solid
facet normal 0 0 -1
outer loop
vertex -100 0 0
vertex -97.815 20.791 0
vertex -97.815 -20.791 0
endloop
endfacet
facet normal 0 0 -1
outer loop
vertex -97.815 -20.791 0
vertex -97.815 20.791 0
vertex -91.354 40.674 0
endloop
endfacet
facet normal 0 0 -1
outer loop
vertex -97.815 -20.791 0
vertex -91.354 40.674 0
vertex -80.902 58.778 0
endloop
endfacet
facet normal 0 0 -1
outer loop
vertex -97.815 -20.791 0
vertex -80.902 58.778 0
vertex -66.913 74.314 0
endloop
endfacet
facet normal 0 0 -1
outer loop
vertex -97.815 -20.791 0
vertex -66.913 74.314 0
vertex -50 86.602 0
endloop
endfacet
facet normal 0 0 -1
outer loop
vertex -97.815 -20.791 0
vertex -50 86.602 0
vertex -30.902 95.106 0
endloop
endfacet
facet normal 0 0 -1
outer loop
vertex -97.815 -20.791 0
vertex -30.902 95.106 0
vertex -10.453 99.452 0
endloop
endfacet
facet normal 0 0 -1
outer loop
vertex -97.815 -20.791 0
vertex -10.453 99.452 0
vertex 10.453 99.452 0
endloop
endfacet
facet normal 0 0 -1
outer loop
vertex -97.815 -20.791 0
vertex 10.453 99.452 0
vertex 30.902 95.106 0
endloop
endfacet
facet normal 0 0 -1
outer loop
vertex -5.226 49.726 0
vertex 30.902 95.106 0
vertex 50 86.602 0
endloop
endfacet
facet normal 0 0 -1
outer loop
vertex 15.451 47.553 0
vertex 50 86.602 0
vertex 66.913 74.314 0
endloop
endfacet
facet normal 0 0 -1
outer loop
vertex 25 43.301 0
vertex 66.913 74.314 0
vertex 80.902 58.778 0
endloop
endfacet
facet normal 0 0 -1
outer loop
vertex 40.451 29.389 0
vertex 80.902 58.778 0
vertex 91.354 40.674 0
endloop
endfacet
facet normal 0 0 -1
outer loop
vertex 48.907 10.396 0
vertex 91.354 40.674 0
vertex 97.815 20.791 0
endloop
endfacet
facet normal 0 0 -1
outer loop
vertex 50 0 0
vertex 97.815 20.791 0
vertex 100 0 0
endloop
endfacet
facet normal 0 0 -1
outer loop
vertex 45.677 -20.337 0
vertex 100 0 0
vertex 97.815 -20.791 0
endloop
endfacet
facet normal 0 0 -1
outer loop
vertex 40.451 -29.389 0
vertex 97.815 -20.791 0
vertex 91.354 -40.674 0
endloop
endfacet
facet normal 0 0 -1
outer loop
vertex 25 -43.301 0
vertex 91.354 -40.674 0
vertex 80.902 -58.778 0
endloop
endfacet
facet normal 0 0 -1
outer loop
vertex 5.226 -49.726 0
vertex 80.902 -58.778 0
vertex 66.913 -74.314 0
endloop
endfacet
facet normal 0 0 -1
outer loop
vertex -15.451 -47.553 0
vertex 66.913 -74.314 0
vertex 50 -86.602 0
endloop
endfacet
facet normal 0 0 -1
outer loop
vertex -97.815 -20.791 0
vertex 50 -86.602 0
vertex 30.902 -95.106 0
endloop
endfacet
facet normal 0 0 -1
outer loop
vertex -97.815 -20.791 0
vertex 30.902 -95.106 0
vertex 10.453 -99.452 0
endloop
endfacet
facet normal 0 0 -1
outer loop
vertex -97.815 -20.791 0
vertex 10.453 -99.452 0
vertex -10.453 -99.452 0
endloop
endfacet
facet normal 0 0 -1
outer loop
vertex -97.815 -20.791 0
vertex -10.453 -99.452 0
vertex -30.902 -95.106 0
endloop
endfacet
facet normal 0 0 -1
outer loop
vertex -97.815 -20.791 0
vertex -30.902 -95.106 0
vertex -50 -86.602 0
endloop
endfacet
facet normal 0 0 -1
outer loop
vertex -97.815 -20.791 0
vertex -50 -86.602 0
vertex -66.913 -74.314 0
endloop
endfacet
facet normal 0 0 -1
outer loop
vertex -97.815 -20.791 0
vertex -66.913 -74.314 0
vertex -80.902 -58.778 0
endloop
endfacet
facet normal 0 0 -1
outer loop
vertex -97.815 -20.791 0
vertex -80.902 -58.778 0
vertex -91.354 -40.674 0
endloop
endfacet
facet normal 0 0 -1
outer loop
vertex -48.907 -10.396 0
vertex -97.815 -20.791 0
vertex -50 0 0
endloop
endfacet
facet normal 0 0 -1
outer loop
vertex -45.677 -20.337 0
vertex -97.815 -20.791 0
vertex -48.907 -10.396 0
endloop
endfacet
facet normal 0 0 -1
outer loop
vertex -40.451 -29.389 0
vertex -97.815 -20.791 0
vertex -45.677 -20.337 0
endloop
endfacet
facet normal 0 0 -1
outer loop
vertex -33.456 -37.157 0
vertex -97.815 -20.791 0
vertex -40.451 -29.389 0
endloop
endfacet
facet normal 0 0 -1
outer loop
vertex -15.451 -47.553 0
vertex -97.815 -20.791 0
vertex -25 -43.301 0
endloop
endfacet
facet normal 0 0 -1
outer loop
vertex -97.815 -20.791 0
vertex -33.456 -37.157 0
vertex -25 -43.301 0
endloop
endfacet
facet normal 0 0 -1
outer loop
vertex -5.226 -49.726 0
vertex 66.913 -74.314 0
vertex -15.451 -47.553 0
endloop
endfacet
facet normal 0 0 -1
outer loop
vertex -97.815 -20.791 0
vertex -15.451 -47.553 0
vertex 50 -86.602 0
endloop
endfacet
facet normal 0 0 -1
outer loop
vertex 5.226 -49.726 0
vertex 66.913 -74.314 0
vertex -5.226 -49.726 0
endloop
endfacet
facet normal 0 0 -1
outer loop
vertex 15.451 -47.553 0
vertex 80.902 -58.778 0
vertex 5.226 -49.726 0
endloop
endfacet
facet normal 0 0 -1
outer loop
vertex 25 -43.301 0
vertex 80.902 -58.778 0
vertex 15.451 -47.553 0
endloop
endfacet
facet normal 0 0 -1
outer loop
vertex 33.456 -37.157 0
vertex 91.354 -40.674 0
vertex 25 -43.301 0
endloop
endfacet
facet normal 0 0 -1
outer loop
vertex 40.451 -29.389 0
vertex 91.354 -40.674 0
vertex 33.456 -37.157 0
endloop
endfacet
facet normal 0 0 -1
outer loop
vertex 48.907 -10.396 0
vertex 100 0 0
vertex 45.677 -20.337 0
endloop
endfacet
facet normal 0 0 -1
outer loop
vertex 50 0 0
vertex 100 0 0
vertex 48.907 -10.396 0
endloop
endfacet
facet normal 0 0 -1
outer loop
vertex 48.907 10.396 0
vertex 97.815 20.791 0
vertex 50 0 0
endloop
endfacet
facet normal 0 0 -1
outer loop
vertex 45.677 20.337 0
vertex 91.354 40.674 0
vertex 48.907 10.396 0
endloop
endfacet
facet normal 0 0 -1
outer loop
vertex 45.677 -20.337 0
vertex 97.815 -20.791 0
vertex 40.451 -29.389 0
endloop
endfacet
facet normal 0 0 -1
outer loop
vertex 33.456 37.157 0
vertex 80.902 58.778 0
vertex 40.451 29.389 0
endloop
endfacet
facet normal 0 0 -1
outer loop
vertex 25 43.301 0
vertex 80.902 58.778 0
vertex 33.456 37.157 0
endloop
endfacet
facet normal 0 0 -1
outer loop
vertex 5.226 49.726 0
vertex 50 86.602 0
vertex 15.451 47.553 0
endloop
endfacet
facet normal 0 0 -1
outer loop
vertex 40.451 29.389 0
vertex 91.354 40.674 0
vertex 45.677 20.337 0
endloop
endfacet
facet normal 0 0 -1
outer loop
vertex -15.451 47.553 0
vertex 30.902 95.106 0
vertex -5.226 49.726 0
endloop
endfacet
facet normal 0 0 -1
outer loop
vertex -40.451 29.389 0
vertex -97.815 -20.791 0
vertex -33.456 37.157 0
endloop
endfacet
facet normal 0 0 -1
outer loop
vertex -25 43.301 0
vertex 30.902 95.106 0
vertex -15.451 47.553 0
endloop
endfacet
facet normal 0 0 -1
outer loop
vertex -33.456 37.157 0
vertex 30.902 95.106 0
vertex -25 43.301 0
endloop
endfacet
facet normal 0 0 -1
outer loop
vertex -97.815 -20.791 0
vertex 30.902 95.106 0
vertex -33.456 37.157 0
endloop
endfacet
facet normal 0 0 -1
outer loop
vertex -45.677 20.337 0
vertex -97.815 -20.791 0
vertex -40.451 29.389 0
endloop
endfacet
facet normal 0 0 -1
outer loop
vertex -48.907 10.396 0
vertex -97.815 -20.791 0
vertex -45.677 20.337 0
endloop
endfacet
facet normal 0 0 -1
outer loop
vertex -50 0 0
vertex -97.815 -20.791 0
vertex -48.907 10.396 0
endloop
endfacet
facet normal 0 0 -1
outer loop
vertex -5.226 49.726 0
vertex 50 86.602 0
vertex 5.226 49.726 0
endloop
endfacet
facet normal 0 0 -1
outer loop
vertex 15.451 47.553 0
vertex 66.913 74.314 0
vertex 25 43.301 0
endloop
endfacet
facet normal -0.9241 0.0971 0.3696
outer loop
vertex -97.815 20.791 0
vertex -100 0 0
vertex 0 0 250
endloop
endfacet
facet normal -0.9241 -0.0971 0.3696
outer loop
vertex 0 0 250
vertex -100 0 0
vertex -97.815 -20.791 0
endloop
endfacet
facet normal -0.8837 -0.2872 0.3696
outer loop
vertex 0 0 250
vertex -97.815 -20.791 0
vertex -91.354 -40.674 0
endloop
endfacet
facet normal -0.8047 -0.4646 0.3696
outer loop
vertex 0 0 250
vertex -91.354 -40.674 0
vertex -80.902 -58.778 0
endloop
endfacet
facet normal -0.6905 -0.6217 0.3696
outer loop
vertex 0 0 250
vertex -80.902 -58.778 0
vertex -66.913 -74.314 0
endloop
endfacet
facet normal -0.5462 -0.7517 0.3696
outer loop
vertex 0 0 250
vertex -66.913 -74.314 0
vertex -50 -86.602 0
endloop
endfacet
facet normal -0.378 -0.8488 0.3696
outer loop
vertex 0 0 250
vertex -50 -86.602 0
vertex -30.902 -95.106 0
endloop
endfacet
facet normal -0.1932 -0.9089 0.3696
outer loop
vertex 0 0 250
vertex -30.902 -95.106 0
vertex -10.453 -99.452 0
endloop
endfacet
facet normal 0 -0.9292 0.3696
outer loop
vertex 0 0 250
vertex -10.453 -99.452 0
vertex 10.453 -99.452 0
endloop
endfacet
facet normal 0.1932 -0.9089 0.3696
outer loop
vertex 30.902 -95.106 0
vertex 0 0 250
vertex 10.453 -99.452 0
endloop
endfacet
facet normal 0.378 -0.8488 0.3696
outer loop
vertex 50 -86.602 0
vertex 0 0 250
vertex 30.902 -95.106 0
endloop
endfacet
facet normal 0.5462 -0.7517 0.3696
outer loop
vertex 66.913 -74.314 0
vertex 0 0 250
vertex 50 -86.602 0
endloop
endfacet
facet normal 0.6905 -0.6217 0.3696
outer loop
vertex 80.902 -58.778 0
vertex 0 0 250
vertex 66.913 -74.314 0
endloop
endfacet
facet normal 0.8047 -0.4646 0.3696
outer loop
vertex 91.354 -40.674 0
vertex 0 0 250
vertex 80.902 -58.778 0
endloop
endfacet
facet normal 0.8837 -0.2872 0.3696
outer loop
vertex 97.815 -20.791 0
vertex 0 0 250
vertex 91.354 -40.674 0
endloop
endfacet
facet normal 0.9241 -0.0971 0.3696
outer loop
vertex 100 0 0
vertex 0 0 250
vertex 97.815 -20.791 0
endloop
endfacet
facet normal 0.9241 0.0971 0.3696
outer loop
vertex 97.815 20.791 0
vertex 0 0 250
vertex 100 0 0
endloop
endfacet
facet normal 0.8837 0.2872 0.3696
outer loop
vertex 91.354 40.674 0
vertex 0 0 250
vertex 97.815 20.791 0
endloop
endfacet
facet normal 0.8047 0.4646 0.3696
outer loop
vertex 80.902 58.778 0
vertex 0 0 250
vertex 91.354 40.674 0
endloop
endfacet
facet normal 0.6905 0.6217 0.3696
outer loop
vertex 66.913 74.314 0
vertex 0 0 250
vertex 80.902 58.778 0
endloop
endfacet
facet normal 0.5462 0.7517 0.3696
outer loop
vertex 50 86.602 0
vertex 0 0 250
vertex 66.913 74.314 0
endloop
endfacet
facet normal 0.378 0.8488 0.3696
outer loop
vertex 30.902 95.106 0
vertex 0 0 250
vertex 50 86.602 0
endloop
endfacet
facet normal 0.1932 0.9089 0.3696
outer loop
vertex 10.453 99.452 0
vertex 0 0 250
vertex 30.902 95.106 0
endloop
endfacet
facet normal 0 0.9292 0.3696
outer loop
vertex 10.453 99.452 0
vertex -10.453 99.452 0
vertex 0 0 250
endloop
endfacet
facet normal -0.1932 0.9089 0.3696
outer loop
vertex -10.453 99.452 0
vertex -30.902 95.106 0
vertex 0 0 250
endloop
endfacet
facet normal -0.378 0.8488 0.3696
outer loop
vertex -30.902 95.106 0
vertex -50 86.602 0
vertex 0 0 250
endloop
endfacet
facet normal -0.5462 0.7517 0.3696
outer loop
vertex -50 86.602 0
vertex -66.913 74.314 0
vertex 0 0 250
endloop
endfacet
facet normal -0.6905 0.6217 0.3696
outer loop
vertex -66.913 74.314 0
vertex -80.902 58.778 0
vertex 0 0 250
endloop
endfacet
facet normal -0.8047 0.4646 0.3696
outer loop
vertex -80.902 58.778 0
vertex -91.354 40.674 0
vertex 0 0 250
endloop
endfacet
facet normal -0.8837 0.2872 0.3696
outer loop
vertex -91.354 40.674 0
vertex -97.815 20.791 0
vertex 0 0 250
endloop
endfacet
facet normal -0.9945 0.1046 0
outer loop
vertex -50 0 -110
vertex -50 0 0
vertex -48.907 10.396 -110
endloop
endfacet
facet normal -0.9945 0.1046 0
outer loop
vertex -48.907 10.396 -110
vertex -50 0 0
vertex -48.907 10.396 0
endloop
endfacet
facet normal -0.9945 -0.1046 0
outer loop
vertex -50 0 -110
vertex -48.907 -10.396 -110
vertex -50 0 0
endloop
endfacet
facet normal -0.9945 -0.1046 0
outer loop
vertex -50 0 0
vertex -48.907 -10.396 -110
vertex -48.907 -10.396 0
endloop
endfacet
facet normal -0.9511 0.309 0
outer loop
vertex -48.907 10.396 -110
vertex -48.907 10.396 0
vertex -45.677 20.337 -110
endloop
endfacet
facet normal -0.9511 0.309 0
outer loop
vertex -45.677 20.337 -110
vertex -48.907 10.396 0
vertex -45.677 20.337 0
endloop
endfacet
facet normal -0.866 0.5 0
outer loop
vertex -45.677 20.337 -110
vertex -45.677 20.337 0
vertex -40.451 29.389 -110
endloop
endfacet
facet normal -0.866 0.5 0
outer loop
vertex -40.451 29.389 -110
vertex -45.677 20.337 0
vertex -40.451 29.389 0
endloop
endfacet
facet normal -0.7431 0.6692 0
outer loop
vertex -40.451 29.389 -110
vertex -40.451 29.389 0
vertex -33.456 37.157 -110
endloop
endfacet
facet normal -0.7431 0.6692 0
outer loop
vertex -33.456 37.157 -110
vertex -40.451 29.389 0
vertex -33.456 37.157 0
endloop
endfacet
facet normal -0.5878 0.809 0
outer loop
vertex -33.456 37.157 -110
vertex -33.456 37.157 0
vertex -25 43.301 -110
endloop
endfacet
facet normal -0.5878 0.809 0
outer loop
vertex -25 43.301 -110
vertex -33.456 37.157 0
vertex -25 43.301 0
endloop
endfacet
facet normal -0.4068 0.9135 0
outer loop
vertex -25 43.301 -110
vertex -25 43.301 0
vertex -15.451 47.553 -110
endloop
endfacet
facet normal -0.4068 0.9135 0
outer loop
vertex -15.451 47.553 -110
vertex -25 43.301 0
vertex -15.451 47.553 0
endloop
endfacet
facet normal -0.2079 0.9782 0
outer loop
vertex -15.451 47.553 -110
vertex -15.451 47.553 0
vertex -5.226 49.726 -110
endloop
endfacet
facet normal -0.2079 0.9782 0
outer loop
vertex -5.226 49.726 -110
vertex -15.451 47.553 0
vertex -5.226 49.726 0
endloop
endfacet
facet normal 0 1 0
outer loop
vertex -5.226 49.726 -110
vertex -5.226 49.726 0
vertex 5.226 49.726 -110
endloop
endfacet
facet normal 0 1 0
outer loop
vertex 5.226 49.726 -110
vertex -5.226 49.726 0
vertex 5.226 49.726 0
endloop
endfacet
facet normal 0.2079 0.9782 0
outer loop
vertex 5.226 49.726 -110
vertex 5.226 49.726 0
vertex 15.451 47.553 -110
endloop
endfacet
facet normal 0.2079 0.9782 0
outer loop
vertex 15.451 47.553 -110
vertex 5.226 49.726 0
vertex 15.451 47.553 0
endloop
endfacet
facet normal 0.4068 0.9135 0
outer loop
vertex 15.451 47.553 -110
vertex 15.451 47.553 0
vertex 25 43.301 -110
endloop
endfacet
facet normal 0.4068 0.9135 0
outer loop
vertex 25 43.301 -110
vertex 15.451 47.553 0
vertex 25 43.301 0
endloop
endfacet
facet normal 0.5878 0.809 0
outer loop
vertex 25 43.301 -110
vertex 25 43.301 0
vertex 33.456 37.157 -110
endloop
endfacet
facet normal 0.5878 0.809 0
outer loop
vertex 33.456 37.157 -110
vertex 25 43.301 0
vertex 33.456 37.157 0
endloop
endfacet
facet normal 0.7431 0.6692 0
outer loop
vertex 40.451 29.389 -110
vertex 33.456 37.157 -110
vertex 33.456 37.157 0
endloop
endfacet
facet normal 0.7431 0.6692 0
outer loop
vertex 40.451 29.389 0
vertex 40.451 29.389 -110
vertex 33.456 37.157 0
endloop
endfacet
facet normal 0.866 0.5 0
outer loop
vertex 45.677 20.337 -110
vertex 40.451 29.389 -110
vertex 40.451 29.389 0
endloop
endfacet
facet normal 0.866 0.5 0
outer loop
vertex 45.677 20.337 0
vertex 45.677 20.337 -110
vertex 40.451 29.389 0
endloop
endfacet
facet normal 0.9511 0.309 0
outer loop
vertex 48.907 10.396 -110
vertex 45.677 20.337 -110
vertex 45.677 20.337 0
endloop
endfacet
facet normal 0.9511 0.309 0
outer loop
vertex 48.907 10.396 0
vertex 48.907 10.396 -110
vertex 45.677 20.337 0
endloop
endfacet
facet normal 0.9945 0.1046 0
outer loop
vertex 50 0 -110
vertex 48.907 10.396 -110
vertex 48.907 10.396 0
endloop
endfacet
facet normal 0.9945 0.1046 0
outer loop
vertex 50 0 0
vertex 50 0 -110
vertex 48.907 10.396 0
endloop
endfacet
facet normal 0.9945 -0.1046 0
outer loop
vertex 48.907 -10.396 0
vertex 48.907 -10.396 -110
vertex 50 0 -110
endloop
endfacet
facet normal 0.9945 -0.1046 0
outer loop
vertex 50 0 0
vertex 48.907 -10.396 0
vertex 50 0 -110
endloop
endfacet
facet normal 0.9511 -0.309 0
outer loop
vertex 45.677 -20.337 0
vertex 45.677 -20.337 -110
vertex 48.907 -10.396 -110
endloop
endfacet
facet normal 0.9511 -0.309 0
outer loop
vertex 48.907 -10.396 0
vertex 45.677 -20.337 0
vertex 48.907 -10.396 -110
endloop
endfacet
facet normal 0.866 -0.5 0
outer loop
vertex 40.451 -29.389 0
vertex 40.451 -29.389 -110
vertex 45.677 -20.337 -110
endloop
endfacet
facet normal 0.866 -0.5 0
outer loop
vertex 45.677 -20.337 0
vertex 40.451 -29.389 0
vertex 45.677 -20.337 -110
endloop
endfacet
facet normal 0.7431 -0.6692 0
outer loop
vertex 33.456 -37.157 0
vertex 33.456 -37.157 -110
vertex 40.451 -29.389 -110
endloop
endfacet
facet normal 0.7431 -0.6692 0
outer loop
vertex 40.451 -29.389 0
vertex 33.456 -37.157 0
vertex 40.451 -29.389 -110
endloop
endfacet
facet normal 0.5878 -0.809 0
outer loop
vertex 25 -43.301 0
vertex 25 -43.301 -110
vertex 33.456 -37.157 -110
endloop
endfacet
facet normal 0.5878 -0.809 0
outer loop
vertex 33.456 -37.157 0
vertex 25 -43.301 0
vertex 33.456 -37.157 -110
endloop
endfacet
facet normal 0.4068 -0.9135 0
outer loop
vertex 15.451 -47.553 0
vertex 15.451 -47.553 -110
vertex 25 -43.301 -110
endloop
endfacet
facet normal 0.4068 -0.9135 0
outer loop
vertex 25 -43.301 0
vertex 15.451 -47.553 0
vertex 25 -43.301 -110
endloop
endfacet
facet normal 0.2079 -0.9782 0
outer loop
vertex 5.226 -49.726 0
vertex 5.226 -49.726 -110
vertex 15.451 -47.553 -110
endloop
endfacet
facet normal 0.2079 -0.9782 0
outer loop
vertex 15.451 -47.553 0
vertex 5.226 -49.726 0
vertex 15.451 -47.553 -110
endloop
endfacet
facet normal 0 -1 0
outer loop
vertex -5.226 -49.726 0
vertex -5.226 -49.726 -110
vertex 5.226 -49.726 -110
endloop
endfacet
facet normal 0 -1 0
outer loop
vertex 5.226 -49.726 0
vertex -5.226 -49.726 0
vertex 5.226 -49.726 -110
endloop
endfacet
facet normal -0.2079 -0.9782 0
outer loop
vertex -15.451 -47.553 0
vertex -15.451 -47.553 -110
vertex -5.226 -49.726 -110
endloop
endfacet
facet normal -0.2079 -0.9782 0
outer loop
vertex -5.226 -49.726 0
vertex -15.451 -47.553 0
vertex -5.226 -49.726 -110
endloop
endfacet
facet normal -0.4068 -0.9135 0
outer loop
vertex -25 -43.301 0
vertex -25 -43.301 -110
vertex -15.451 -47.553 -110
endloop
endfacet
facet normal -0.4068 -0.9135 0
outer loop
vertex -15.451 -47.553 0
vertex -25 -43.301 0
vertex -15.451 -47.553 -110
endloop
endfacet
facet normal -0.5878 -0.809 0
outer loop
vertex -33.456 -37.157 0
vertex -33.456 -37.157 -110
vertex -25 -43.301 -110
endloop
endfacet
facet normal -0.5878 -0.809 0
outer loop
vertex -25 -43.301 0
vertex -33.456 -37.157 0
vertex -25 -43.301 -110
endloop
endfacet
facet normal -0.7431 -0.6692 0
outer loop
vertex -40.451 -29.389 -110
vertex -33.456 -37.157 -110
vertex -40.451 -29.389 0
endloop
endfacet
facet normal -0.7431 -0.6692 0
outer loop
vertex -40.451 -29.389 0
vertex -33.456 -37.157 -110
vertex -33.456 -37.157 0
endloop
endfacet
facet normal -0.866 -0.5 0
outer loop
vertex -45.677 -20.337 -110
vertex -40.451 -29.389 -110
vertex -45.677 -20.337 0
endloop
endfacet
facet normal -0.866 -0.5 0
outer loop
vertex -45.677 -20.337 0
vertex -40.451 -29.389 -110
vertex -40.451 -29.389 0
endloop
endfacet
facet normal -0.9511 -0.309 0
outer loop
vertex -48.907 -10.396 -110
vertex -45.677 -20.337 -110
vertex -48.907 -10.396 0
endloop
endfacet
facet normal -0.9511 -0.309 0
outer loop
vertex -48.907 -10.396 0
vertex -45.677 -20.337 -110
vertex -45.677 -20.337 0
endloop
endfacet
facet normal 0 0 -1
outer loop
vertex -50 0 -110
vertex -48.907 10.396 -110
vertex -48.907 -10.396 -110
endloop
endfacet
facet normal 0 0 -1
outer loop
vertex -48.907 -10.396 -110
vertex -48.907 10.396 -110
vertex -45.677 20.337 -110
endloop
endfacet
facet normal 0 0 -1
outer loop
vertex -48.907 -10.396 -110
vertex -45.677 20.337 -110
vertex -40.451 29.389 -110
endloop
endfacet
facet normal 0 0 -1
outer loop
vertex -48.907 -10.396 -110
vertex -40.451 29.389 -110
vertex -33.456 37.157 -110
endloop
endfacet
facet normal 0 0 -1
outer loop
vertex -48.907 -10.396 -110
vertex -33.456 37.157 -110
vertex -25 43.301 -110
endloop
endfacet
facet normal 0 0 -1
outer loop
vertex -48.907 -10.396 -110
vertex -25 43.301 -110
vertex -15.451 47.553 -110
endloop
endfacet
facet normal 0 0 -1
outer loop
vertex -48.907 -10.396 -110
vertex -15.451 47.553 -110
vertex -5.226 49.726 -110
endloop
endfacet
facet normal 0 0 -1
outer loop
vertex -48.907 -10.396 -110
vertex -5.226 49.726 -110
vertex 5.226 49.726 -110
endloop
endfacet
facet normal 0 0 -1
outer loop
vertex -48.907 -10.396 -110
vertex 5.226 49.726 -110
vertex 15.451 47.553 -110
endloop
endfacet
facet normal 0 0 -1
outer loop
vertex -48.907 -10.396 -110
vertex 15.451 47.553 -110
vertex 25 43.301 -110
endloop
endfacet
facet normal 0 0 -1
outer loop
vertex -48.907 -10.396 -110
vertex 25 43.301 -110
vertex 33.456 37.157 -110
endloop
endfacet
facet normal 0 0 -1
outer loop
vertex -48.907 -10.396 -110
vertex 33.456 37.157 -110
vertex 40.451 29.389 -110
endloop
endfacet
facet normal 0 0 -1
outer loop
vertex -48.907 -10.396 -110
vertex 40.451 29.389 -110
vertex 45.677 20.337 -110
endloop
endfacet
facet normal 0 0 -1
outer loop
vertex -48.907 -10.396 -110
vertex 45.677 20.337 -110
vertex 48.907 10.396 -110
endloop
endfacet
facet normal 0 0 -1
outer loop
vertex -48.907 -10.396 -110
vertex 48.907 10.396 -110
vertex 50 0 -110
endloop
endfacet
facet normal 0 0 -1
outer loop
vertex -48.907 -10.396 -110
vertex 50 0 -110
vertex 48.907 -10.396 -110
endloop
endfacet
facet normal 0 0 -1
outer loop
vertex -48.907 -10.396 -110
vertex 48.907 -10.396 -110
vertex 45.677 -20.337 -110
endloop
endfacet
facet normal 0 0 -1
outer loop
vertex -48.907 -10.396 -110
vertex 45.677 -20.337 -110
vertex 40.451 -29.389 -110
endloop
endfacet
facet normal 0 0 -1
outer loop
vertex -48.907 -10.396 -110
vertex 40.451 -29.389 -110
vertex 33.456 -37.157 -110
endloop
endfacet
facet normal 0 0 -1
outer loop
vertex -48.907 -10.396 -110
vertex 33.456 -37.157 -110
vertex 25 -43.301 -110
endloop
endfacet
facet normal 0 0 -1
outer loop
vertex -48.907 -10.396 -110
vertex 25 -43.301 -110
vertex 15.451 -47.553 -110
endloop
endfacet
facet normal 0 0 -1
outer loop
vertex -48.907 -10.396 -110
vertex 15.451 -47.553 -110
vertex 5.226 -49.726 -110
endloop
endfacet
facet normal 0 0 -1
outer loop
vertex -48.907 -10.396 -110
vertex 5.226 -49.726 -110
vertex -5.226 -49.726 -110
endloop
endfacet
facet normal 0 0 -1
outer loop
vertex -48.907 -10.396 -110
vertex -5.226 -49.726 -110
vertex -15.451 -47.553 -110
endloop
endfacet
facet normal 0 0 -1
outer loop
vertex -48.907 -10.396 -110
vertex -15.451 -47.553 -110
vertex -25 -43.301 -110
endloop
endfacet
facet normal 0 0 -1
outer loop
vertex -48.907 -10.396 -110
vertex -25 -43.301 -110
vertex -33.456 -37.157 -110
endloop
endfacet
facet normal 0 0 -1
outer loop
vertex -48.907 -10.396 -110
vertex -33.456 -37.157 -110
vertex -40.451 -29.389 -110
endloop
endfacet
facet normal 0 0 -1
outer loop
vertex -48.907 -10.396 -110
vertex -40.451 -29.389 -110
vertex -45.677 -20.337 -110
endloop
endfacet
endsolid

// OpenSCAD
//Loguncov Maxim 21.01.2014

color([0.3,1,0])
cylinder(250,100,0);

color([1,0.1,0.1])
translate([0,0,-110])
cylinder(200,50,50);
